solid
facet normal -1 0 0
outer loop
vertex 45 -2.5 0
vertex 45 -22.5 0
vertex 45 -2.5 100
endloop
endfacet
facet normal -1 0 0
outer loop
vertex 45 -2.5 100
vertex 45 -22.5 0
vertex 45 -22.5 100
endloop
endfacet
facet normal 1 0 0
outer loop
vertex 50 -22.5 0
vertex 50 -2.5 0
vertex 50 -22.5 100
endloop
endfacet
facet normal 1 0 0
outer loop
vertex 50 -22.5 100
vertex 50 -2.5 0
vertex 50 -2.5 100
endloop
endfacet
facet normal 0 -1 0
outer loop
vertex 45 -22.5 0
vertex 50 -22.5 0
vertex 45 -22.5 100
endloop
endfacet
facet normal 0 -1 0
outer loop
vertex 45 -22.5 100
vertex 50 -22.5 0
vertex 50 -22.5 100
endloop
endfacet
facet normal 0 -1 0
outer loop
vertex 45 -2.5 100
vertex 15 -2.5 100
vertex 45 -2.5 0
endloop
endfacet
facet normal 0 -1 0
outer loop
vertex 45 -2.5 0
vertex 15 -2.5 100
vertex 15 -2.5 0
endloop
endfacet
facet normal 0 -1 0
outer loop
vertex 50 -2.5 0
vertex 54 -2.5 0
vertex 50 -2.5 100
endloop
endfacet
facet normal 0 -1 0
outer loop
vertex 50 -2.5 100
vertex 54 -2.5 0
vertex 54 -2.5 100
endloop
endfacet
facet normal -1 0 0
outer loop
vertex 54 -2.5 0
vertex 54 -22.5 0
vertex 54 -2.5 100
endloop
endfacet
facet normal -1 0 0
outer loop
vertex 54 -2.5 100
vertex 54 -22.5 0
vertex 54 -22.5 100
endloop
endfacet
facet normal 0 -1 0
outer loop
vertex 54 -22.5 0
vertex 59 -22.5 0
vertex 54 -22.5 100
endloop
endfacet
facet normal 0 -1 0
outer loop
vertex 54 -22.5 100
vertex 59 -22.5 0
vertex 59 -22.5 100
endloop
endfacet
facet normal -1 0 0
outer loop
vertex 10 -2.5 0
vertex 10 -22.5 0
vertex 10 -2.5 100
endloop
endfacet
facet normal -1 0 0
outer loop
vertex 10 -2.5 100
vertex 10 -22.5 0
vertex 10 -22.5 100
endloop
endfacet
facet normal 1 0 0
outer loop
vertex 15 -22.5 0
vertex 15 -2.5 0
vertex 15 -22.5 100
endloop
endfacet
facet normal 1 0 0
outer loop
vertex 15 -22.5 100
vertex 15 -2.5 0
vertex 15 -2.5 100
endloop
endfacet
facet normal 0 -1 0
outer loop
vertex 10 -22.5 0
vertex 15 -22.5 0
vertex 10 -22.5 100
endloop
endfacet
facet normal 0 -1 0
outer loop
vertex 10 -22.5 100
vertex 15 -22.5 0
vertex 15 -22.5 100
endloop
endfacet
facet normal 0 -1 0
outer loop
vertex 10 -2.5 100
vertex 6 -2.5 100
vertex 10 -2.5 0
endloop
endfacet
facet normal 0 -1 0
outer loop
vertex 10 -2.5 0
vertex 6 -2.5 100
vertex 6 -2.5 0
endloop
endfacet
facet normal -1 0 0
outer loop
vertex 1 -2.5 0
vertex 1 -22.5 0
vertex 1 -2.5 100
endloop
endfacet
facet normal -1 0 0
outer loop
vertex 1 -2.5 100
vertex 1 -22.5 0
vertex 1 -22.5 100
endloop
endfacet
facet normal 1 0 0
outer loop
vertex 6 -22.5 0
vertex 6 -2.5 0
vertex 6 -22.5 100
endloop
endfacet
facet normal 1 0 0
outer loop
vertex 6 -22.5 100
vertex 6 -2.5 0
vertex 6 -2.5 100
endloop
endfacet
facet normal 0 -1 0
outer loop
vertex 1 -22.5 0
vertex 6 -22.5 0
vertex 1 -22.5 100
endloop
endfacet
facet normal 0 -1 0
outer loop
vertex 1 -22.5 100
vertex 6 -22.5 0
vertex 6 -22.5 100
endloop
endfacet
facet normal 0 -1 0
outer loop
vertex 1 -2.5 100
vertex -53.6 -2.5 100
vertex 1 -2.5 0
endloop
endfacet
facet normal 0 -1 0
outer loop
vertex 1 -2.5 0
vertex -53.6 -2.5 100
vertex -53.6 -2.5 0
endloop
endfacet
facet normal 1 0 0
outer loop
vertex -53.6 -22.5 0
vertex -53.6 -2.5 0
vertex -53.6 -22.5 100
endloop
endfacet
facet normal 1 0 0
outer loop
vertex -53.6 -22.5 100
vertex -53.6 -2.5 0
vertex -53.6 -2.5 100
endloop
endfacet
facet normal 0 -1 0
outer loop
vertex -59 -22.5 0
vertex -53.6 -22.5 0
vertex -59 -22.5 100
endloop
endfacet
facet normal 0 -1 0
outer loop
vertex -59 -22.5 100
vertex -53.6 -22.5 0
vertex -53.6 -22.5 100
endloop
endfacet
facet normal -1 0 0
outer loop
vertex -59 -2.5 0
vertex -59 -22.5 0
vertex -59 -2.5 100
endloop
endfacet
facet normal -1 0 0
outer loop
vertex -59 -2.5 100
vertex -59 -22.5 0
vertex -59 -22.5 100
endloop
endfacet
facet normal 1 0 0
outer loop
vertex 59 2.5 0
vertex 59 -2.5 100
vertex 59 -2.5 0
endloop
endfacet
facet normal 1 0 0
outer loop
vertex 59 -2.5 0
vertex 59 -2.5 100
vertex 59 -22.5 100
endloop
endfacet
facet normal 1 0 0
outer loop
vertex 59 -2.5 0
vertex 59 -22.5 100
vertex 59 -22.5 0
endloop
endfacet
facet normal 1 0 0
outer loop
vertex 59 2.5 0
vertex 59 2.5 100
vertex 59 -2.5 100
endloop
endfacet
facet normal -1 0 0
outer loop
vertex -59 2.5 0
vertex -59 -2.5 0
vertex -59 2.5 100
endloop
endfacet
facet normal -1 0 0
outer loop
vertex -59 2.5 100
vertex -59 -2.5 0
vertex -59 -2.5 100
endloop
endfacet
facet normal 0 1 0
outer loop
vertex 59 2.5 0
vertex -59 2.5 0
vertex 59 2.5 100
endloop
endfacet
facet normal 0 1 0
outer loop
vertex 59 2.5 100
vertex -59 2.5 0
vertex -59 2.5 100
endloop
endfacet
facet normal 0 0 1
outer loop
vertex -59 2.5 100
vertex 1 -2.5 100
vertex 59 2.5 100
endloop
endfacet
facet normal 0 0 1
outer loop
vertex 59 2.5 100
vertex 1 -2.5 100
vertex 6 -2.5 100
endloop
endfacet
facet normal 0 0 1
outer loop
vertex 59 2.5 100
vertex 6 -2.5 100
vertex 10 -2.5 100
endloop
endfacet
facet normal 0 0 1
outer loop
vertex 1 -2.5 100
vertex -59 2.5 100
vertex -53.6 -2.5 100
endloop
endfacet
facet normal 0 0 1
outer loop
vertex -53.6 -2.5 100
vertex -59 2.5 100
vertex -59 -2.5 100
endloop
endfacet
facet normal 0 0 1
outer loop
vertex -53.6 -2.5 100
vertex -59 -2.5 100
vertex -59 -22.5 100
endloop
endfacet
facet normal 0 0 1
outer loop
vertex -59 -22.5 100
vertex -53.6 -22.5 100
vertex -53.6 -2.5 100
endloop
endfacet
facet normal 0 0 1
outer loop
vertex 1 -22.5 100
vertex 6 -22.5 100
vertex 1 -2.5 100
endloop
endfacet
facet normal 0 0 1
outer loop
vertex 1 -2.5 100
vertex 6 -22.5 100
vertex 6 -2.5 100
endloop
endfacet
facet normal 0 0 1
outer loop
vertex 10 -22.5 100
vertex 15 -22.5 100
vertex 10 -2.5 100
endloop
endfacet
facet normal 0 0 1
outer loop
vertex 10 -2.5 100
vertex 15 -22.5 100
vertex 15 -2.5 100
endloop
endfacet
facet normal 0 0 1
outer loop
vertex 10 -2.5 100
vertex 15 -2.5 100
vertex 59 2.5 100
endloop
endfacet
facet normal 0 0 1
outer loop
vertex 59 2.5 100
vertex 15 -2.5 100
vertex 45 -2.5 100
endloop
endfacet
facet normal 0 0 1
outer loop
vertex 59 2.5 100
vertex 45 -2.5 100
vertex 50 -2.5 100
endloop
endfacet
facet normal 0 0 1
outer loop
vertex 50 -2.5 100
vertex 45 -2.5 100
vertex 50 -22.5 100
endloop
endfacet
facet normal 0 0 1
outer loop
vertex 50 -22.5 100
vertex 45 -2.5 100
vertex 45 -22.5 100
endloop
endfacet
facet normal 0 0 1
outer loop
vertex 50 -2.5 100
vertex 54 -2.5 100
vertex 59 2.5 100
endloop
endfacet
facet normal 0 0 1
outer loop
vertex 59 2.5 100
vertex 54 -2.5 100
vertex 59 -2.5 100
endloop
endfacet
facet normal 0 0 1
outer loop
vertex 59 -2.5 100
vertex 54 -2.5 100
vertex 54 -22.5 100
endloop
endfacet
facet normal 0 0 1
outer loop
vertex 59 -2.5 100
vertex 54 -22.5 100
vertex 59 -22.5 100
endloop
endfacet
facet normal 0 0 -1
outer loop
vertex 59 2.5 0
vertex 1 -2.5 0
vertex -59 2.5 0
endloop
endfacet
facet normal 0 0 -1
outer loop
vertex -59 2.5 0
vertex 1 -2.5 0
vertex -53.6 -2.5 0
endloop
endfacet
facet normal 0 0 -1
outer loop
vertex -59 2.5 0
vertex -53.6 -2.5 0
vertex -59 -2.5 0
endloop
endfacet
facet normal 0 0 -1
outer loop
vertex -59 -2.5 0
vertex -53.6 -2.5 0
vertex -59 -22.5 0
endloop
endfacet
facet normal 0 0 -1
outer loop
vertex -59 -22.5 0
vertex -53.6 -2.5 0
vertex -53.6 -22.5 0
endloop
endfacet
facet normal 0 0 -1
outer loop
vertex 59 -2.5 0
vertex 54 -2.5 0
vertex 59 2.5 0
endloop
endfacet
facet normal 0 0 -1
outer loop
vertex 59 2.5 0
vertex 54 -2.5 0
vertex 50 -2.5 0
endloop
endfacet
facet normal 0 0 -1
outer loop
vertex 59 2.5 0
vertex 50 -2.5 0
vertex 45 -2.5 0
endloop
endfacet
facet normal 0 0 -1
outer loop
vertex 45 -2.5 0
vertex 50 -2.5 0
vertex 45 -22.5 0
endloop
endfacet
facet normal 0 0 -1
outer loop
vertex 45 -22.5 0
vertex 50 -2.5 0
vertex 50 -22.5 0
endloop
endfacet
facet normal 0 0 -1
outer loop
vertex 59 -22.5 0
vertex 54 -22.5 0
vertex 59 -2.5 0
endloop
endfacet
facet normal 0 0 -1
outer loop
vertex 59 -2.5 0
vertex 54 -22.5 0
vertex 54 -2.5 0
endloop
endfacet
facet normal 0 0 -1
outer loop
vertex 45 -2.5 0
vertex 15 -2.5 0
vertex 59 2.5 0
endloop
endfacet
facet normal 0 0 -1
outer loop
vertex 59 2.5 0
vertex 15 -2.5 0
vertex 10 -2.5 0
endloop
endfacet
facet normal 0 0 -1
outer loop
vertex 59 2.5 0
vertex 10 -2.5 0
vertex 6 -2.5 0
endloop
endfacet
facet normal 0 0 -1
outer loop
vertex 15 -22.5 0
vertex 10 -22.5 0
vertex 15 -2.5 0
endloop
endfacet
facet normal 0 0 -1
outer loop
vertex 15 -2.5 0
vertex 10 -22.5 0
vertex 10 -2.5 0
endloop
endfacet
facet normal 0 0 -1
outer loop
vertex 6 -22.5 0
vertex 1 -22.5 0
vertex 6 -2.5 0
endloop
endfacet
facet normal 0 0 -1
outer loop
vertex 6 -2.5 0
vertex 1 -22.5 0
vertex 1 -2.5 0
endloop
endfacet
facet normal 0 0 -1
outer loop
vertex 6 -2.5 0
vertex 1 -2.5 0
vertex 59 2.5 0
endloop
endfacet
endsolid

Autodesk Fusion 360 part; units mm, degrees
sketch "Sketch6" plane through (0, 0, 0) normal (0, 0, 1) x (1, 0, 0)
  line L0 (59, -2.5) -> (-59, -2.5)
  line L1 (-59, -2.5) -> (-59, 2.5)
  line L2 (-59, 2.5) -> (59, 2.5)
  line L3 (59, 2.5) -> (59, -2.5)
  line L4 (59, -2.5) -> (-59, 2.5) construction
  line L5 (-59, -2.5) -> (59, 2.5) construction
  dimension "d8" = 118
  dimension "d9" = 5
sketch "Sketch7" plane through (0, 0, 0) normal (0, 0, 1) x (1, 0, 0)
  line L0 (-464, -2.5) -> (-459, -2.5)
  line L1 (-459, -2.5) -> (-459, -22.5)
  line L2 (-459, -22.5) -> (-464, -22.5)
  line L3 (-464, -22.5) -> (-464, -2.5)
  line L4 (-459, -22.5) -> (-464, -22.5)
  line L5 (-464, -22.5) -> (-464, -2.5)
  line L6 (-459, -2.5) -> (-459, -22.5)
  line L7 (-464, -2.5) -> (-459, -2.5)
  dimension "d10" = 5
  dimension "d11" = 20
  dimension "d12" = 5
  dimension "d13" = 20
sketch "Sketch8" plane through (0, 0, 0) normal (0, 0, 1) x (1, 0, 0)
  line L0 (136, -2.5) -> (141, -2.5)
  line L1 (141, -2.5) -> (141, -22.5)
  line L2 (141, -22.5) -> (136, -22.5)
  line L3 (136, -22.5) -> (136, -2.5)
  dimension "d14" = 5
  dimension "d15" = 20
sketch "Sketch9" plane through (0, 0, 0) normal (0, 0, 1) x (1, 0, 0)
  line L0 (459, -2.5) -> (464, -2.5)
  line L1 (464, -2.5) -> (464, -22.5)
  line L2 (464, -22.5) -> (459, -22.5)
  line L3 (459, -22.5) -> (459, -2.5)
  dimension "d16" = 5
  dimension "d17" = 20
sketch "Sketch10" plane through (0, 0, 0) normal (0, 0, 1) x (1, 0, 0)
  line L0 (450, -2.5) -> (455, -2.5)
  line L1 (455, -2.5) -> (455, -22.5)
  line L2 (455, -22.5) -> (450, -22.5)
  line L3 (450, -22.5) -> (450, -2.5)
  dimension "d20" = 5
  dimension "d21" = 20
sketch "Sketch11" plane through (0, 0, 0) normal (0, 0, 1) x (1, 0, 0)
  line L0 (145, -2.5) -> (150, -2.5)
  line L1 (150, -2.5) -> (150, -22.5)
  line L2 (150, -22.5) -> (145, -22.5)
  line L3 (145, -22.5) -> (145, -2.5)
  dimension "d22" = 5
  dimension "d23" = 20
extrude "Extrude1" add sketch "Sketch6" along normal blind 100 makes body 1
extrude "Extrude2" add sketch "Sketch7" along normal blind 100 bodies 1 makes body 2
extrude "Extrude3" add sketch "Sketch8" along normal blind 100 bodies 2 1 makes body 3
extrude "Extrude4" add sketch "Sketch11" along normal blind 100 bodies 3 2 1 makes body 4
extrude "Extrude5" add sketch "Sketch10" along normal blind 100 bodies 4 3 2 1 makes body 5
extrude "Extrude6" add sketch "Sketch9" along normal blind 100 bodies 5 4 3 2 1 makes body 6
move_body "Move1" bodies 2 to x (1, 0, 0) y (0, 1, 0) z (0, 0, 1) at (418, 0, 0)
move_face "MoveFace1" by (-0.4, 0, 0) 1 faces at (-46, -15.8333, 33.3333) on bodies 2
move_body "Move2" bodies 5 6 to x (1, 0, 0) y (0, 1, 0) z (0, 0, 1) at (-417.6, 0, 0)
move_body "Move3" bodies 4 3 to x (1, 0, 0) y (0, 1, 0) z (0, 0, 1) at (-140, 0, 0)
move_body "Move4" bodies 3 4 to x (1, 0, 0) y (0, 1, 0) z (0, 0, 1) at (5, 0, 0)
move_body "Move5" bodies 4 3 to x (1, 0, 0) y (0, 1, 0) z (0, 0, 1) at (7, 0, 0)
move_body "Move6" bodies 4 3 to x (1, 0, 0) y (0, 1, 0) z (0, 0, 1) at (4, 0, 0)
move_body "Move7" bodies 2 to x (1, 0, 0) y (0, 1, 0) z (0, 0, 1) at (-12.6, 0, 0)
move_body "Move8" bodies 6 5 to x (1, 0, 0) y (0, 1, 0) z (0, 0, 1) at (12.6, 0, 0)
move_body "Move9" bodies 4 3 to x (1, 0, 0) y (0, 1, 0) z (0, 0, 1) at (-11, 0, 0)
combine "Combine1" operation add target body 1 tool bodies 2 3 4 6 5
